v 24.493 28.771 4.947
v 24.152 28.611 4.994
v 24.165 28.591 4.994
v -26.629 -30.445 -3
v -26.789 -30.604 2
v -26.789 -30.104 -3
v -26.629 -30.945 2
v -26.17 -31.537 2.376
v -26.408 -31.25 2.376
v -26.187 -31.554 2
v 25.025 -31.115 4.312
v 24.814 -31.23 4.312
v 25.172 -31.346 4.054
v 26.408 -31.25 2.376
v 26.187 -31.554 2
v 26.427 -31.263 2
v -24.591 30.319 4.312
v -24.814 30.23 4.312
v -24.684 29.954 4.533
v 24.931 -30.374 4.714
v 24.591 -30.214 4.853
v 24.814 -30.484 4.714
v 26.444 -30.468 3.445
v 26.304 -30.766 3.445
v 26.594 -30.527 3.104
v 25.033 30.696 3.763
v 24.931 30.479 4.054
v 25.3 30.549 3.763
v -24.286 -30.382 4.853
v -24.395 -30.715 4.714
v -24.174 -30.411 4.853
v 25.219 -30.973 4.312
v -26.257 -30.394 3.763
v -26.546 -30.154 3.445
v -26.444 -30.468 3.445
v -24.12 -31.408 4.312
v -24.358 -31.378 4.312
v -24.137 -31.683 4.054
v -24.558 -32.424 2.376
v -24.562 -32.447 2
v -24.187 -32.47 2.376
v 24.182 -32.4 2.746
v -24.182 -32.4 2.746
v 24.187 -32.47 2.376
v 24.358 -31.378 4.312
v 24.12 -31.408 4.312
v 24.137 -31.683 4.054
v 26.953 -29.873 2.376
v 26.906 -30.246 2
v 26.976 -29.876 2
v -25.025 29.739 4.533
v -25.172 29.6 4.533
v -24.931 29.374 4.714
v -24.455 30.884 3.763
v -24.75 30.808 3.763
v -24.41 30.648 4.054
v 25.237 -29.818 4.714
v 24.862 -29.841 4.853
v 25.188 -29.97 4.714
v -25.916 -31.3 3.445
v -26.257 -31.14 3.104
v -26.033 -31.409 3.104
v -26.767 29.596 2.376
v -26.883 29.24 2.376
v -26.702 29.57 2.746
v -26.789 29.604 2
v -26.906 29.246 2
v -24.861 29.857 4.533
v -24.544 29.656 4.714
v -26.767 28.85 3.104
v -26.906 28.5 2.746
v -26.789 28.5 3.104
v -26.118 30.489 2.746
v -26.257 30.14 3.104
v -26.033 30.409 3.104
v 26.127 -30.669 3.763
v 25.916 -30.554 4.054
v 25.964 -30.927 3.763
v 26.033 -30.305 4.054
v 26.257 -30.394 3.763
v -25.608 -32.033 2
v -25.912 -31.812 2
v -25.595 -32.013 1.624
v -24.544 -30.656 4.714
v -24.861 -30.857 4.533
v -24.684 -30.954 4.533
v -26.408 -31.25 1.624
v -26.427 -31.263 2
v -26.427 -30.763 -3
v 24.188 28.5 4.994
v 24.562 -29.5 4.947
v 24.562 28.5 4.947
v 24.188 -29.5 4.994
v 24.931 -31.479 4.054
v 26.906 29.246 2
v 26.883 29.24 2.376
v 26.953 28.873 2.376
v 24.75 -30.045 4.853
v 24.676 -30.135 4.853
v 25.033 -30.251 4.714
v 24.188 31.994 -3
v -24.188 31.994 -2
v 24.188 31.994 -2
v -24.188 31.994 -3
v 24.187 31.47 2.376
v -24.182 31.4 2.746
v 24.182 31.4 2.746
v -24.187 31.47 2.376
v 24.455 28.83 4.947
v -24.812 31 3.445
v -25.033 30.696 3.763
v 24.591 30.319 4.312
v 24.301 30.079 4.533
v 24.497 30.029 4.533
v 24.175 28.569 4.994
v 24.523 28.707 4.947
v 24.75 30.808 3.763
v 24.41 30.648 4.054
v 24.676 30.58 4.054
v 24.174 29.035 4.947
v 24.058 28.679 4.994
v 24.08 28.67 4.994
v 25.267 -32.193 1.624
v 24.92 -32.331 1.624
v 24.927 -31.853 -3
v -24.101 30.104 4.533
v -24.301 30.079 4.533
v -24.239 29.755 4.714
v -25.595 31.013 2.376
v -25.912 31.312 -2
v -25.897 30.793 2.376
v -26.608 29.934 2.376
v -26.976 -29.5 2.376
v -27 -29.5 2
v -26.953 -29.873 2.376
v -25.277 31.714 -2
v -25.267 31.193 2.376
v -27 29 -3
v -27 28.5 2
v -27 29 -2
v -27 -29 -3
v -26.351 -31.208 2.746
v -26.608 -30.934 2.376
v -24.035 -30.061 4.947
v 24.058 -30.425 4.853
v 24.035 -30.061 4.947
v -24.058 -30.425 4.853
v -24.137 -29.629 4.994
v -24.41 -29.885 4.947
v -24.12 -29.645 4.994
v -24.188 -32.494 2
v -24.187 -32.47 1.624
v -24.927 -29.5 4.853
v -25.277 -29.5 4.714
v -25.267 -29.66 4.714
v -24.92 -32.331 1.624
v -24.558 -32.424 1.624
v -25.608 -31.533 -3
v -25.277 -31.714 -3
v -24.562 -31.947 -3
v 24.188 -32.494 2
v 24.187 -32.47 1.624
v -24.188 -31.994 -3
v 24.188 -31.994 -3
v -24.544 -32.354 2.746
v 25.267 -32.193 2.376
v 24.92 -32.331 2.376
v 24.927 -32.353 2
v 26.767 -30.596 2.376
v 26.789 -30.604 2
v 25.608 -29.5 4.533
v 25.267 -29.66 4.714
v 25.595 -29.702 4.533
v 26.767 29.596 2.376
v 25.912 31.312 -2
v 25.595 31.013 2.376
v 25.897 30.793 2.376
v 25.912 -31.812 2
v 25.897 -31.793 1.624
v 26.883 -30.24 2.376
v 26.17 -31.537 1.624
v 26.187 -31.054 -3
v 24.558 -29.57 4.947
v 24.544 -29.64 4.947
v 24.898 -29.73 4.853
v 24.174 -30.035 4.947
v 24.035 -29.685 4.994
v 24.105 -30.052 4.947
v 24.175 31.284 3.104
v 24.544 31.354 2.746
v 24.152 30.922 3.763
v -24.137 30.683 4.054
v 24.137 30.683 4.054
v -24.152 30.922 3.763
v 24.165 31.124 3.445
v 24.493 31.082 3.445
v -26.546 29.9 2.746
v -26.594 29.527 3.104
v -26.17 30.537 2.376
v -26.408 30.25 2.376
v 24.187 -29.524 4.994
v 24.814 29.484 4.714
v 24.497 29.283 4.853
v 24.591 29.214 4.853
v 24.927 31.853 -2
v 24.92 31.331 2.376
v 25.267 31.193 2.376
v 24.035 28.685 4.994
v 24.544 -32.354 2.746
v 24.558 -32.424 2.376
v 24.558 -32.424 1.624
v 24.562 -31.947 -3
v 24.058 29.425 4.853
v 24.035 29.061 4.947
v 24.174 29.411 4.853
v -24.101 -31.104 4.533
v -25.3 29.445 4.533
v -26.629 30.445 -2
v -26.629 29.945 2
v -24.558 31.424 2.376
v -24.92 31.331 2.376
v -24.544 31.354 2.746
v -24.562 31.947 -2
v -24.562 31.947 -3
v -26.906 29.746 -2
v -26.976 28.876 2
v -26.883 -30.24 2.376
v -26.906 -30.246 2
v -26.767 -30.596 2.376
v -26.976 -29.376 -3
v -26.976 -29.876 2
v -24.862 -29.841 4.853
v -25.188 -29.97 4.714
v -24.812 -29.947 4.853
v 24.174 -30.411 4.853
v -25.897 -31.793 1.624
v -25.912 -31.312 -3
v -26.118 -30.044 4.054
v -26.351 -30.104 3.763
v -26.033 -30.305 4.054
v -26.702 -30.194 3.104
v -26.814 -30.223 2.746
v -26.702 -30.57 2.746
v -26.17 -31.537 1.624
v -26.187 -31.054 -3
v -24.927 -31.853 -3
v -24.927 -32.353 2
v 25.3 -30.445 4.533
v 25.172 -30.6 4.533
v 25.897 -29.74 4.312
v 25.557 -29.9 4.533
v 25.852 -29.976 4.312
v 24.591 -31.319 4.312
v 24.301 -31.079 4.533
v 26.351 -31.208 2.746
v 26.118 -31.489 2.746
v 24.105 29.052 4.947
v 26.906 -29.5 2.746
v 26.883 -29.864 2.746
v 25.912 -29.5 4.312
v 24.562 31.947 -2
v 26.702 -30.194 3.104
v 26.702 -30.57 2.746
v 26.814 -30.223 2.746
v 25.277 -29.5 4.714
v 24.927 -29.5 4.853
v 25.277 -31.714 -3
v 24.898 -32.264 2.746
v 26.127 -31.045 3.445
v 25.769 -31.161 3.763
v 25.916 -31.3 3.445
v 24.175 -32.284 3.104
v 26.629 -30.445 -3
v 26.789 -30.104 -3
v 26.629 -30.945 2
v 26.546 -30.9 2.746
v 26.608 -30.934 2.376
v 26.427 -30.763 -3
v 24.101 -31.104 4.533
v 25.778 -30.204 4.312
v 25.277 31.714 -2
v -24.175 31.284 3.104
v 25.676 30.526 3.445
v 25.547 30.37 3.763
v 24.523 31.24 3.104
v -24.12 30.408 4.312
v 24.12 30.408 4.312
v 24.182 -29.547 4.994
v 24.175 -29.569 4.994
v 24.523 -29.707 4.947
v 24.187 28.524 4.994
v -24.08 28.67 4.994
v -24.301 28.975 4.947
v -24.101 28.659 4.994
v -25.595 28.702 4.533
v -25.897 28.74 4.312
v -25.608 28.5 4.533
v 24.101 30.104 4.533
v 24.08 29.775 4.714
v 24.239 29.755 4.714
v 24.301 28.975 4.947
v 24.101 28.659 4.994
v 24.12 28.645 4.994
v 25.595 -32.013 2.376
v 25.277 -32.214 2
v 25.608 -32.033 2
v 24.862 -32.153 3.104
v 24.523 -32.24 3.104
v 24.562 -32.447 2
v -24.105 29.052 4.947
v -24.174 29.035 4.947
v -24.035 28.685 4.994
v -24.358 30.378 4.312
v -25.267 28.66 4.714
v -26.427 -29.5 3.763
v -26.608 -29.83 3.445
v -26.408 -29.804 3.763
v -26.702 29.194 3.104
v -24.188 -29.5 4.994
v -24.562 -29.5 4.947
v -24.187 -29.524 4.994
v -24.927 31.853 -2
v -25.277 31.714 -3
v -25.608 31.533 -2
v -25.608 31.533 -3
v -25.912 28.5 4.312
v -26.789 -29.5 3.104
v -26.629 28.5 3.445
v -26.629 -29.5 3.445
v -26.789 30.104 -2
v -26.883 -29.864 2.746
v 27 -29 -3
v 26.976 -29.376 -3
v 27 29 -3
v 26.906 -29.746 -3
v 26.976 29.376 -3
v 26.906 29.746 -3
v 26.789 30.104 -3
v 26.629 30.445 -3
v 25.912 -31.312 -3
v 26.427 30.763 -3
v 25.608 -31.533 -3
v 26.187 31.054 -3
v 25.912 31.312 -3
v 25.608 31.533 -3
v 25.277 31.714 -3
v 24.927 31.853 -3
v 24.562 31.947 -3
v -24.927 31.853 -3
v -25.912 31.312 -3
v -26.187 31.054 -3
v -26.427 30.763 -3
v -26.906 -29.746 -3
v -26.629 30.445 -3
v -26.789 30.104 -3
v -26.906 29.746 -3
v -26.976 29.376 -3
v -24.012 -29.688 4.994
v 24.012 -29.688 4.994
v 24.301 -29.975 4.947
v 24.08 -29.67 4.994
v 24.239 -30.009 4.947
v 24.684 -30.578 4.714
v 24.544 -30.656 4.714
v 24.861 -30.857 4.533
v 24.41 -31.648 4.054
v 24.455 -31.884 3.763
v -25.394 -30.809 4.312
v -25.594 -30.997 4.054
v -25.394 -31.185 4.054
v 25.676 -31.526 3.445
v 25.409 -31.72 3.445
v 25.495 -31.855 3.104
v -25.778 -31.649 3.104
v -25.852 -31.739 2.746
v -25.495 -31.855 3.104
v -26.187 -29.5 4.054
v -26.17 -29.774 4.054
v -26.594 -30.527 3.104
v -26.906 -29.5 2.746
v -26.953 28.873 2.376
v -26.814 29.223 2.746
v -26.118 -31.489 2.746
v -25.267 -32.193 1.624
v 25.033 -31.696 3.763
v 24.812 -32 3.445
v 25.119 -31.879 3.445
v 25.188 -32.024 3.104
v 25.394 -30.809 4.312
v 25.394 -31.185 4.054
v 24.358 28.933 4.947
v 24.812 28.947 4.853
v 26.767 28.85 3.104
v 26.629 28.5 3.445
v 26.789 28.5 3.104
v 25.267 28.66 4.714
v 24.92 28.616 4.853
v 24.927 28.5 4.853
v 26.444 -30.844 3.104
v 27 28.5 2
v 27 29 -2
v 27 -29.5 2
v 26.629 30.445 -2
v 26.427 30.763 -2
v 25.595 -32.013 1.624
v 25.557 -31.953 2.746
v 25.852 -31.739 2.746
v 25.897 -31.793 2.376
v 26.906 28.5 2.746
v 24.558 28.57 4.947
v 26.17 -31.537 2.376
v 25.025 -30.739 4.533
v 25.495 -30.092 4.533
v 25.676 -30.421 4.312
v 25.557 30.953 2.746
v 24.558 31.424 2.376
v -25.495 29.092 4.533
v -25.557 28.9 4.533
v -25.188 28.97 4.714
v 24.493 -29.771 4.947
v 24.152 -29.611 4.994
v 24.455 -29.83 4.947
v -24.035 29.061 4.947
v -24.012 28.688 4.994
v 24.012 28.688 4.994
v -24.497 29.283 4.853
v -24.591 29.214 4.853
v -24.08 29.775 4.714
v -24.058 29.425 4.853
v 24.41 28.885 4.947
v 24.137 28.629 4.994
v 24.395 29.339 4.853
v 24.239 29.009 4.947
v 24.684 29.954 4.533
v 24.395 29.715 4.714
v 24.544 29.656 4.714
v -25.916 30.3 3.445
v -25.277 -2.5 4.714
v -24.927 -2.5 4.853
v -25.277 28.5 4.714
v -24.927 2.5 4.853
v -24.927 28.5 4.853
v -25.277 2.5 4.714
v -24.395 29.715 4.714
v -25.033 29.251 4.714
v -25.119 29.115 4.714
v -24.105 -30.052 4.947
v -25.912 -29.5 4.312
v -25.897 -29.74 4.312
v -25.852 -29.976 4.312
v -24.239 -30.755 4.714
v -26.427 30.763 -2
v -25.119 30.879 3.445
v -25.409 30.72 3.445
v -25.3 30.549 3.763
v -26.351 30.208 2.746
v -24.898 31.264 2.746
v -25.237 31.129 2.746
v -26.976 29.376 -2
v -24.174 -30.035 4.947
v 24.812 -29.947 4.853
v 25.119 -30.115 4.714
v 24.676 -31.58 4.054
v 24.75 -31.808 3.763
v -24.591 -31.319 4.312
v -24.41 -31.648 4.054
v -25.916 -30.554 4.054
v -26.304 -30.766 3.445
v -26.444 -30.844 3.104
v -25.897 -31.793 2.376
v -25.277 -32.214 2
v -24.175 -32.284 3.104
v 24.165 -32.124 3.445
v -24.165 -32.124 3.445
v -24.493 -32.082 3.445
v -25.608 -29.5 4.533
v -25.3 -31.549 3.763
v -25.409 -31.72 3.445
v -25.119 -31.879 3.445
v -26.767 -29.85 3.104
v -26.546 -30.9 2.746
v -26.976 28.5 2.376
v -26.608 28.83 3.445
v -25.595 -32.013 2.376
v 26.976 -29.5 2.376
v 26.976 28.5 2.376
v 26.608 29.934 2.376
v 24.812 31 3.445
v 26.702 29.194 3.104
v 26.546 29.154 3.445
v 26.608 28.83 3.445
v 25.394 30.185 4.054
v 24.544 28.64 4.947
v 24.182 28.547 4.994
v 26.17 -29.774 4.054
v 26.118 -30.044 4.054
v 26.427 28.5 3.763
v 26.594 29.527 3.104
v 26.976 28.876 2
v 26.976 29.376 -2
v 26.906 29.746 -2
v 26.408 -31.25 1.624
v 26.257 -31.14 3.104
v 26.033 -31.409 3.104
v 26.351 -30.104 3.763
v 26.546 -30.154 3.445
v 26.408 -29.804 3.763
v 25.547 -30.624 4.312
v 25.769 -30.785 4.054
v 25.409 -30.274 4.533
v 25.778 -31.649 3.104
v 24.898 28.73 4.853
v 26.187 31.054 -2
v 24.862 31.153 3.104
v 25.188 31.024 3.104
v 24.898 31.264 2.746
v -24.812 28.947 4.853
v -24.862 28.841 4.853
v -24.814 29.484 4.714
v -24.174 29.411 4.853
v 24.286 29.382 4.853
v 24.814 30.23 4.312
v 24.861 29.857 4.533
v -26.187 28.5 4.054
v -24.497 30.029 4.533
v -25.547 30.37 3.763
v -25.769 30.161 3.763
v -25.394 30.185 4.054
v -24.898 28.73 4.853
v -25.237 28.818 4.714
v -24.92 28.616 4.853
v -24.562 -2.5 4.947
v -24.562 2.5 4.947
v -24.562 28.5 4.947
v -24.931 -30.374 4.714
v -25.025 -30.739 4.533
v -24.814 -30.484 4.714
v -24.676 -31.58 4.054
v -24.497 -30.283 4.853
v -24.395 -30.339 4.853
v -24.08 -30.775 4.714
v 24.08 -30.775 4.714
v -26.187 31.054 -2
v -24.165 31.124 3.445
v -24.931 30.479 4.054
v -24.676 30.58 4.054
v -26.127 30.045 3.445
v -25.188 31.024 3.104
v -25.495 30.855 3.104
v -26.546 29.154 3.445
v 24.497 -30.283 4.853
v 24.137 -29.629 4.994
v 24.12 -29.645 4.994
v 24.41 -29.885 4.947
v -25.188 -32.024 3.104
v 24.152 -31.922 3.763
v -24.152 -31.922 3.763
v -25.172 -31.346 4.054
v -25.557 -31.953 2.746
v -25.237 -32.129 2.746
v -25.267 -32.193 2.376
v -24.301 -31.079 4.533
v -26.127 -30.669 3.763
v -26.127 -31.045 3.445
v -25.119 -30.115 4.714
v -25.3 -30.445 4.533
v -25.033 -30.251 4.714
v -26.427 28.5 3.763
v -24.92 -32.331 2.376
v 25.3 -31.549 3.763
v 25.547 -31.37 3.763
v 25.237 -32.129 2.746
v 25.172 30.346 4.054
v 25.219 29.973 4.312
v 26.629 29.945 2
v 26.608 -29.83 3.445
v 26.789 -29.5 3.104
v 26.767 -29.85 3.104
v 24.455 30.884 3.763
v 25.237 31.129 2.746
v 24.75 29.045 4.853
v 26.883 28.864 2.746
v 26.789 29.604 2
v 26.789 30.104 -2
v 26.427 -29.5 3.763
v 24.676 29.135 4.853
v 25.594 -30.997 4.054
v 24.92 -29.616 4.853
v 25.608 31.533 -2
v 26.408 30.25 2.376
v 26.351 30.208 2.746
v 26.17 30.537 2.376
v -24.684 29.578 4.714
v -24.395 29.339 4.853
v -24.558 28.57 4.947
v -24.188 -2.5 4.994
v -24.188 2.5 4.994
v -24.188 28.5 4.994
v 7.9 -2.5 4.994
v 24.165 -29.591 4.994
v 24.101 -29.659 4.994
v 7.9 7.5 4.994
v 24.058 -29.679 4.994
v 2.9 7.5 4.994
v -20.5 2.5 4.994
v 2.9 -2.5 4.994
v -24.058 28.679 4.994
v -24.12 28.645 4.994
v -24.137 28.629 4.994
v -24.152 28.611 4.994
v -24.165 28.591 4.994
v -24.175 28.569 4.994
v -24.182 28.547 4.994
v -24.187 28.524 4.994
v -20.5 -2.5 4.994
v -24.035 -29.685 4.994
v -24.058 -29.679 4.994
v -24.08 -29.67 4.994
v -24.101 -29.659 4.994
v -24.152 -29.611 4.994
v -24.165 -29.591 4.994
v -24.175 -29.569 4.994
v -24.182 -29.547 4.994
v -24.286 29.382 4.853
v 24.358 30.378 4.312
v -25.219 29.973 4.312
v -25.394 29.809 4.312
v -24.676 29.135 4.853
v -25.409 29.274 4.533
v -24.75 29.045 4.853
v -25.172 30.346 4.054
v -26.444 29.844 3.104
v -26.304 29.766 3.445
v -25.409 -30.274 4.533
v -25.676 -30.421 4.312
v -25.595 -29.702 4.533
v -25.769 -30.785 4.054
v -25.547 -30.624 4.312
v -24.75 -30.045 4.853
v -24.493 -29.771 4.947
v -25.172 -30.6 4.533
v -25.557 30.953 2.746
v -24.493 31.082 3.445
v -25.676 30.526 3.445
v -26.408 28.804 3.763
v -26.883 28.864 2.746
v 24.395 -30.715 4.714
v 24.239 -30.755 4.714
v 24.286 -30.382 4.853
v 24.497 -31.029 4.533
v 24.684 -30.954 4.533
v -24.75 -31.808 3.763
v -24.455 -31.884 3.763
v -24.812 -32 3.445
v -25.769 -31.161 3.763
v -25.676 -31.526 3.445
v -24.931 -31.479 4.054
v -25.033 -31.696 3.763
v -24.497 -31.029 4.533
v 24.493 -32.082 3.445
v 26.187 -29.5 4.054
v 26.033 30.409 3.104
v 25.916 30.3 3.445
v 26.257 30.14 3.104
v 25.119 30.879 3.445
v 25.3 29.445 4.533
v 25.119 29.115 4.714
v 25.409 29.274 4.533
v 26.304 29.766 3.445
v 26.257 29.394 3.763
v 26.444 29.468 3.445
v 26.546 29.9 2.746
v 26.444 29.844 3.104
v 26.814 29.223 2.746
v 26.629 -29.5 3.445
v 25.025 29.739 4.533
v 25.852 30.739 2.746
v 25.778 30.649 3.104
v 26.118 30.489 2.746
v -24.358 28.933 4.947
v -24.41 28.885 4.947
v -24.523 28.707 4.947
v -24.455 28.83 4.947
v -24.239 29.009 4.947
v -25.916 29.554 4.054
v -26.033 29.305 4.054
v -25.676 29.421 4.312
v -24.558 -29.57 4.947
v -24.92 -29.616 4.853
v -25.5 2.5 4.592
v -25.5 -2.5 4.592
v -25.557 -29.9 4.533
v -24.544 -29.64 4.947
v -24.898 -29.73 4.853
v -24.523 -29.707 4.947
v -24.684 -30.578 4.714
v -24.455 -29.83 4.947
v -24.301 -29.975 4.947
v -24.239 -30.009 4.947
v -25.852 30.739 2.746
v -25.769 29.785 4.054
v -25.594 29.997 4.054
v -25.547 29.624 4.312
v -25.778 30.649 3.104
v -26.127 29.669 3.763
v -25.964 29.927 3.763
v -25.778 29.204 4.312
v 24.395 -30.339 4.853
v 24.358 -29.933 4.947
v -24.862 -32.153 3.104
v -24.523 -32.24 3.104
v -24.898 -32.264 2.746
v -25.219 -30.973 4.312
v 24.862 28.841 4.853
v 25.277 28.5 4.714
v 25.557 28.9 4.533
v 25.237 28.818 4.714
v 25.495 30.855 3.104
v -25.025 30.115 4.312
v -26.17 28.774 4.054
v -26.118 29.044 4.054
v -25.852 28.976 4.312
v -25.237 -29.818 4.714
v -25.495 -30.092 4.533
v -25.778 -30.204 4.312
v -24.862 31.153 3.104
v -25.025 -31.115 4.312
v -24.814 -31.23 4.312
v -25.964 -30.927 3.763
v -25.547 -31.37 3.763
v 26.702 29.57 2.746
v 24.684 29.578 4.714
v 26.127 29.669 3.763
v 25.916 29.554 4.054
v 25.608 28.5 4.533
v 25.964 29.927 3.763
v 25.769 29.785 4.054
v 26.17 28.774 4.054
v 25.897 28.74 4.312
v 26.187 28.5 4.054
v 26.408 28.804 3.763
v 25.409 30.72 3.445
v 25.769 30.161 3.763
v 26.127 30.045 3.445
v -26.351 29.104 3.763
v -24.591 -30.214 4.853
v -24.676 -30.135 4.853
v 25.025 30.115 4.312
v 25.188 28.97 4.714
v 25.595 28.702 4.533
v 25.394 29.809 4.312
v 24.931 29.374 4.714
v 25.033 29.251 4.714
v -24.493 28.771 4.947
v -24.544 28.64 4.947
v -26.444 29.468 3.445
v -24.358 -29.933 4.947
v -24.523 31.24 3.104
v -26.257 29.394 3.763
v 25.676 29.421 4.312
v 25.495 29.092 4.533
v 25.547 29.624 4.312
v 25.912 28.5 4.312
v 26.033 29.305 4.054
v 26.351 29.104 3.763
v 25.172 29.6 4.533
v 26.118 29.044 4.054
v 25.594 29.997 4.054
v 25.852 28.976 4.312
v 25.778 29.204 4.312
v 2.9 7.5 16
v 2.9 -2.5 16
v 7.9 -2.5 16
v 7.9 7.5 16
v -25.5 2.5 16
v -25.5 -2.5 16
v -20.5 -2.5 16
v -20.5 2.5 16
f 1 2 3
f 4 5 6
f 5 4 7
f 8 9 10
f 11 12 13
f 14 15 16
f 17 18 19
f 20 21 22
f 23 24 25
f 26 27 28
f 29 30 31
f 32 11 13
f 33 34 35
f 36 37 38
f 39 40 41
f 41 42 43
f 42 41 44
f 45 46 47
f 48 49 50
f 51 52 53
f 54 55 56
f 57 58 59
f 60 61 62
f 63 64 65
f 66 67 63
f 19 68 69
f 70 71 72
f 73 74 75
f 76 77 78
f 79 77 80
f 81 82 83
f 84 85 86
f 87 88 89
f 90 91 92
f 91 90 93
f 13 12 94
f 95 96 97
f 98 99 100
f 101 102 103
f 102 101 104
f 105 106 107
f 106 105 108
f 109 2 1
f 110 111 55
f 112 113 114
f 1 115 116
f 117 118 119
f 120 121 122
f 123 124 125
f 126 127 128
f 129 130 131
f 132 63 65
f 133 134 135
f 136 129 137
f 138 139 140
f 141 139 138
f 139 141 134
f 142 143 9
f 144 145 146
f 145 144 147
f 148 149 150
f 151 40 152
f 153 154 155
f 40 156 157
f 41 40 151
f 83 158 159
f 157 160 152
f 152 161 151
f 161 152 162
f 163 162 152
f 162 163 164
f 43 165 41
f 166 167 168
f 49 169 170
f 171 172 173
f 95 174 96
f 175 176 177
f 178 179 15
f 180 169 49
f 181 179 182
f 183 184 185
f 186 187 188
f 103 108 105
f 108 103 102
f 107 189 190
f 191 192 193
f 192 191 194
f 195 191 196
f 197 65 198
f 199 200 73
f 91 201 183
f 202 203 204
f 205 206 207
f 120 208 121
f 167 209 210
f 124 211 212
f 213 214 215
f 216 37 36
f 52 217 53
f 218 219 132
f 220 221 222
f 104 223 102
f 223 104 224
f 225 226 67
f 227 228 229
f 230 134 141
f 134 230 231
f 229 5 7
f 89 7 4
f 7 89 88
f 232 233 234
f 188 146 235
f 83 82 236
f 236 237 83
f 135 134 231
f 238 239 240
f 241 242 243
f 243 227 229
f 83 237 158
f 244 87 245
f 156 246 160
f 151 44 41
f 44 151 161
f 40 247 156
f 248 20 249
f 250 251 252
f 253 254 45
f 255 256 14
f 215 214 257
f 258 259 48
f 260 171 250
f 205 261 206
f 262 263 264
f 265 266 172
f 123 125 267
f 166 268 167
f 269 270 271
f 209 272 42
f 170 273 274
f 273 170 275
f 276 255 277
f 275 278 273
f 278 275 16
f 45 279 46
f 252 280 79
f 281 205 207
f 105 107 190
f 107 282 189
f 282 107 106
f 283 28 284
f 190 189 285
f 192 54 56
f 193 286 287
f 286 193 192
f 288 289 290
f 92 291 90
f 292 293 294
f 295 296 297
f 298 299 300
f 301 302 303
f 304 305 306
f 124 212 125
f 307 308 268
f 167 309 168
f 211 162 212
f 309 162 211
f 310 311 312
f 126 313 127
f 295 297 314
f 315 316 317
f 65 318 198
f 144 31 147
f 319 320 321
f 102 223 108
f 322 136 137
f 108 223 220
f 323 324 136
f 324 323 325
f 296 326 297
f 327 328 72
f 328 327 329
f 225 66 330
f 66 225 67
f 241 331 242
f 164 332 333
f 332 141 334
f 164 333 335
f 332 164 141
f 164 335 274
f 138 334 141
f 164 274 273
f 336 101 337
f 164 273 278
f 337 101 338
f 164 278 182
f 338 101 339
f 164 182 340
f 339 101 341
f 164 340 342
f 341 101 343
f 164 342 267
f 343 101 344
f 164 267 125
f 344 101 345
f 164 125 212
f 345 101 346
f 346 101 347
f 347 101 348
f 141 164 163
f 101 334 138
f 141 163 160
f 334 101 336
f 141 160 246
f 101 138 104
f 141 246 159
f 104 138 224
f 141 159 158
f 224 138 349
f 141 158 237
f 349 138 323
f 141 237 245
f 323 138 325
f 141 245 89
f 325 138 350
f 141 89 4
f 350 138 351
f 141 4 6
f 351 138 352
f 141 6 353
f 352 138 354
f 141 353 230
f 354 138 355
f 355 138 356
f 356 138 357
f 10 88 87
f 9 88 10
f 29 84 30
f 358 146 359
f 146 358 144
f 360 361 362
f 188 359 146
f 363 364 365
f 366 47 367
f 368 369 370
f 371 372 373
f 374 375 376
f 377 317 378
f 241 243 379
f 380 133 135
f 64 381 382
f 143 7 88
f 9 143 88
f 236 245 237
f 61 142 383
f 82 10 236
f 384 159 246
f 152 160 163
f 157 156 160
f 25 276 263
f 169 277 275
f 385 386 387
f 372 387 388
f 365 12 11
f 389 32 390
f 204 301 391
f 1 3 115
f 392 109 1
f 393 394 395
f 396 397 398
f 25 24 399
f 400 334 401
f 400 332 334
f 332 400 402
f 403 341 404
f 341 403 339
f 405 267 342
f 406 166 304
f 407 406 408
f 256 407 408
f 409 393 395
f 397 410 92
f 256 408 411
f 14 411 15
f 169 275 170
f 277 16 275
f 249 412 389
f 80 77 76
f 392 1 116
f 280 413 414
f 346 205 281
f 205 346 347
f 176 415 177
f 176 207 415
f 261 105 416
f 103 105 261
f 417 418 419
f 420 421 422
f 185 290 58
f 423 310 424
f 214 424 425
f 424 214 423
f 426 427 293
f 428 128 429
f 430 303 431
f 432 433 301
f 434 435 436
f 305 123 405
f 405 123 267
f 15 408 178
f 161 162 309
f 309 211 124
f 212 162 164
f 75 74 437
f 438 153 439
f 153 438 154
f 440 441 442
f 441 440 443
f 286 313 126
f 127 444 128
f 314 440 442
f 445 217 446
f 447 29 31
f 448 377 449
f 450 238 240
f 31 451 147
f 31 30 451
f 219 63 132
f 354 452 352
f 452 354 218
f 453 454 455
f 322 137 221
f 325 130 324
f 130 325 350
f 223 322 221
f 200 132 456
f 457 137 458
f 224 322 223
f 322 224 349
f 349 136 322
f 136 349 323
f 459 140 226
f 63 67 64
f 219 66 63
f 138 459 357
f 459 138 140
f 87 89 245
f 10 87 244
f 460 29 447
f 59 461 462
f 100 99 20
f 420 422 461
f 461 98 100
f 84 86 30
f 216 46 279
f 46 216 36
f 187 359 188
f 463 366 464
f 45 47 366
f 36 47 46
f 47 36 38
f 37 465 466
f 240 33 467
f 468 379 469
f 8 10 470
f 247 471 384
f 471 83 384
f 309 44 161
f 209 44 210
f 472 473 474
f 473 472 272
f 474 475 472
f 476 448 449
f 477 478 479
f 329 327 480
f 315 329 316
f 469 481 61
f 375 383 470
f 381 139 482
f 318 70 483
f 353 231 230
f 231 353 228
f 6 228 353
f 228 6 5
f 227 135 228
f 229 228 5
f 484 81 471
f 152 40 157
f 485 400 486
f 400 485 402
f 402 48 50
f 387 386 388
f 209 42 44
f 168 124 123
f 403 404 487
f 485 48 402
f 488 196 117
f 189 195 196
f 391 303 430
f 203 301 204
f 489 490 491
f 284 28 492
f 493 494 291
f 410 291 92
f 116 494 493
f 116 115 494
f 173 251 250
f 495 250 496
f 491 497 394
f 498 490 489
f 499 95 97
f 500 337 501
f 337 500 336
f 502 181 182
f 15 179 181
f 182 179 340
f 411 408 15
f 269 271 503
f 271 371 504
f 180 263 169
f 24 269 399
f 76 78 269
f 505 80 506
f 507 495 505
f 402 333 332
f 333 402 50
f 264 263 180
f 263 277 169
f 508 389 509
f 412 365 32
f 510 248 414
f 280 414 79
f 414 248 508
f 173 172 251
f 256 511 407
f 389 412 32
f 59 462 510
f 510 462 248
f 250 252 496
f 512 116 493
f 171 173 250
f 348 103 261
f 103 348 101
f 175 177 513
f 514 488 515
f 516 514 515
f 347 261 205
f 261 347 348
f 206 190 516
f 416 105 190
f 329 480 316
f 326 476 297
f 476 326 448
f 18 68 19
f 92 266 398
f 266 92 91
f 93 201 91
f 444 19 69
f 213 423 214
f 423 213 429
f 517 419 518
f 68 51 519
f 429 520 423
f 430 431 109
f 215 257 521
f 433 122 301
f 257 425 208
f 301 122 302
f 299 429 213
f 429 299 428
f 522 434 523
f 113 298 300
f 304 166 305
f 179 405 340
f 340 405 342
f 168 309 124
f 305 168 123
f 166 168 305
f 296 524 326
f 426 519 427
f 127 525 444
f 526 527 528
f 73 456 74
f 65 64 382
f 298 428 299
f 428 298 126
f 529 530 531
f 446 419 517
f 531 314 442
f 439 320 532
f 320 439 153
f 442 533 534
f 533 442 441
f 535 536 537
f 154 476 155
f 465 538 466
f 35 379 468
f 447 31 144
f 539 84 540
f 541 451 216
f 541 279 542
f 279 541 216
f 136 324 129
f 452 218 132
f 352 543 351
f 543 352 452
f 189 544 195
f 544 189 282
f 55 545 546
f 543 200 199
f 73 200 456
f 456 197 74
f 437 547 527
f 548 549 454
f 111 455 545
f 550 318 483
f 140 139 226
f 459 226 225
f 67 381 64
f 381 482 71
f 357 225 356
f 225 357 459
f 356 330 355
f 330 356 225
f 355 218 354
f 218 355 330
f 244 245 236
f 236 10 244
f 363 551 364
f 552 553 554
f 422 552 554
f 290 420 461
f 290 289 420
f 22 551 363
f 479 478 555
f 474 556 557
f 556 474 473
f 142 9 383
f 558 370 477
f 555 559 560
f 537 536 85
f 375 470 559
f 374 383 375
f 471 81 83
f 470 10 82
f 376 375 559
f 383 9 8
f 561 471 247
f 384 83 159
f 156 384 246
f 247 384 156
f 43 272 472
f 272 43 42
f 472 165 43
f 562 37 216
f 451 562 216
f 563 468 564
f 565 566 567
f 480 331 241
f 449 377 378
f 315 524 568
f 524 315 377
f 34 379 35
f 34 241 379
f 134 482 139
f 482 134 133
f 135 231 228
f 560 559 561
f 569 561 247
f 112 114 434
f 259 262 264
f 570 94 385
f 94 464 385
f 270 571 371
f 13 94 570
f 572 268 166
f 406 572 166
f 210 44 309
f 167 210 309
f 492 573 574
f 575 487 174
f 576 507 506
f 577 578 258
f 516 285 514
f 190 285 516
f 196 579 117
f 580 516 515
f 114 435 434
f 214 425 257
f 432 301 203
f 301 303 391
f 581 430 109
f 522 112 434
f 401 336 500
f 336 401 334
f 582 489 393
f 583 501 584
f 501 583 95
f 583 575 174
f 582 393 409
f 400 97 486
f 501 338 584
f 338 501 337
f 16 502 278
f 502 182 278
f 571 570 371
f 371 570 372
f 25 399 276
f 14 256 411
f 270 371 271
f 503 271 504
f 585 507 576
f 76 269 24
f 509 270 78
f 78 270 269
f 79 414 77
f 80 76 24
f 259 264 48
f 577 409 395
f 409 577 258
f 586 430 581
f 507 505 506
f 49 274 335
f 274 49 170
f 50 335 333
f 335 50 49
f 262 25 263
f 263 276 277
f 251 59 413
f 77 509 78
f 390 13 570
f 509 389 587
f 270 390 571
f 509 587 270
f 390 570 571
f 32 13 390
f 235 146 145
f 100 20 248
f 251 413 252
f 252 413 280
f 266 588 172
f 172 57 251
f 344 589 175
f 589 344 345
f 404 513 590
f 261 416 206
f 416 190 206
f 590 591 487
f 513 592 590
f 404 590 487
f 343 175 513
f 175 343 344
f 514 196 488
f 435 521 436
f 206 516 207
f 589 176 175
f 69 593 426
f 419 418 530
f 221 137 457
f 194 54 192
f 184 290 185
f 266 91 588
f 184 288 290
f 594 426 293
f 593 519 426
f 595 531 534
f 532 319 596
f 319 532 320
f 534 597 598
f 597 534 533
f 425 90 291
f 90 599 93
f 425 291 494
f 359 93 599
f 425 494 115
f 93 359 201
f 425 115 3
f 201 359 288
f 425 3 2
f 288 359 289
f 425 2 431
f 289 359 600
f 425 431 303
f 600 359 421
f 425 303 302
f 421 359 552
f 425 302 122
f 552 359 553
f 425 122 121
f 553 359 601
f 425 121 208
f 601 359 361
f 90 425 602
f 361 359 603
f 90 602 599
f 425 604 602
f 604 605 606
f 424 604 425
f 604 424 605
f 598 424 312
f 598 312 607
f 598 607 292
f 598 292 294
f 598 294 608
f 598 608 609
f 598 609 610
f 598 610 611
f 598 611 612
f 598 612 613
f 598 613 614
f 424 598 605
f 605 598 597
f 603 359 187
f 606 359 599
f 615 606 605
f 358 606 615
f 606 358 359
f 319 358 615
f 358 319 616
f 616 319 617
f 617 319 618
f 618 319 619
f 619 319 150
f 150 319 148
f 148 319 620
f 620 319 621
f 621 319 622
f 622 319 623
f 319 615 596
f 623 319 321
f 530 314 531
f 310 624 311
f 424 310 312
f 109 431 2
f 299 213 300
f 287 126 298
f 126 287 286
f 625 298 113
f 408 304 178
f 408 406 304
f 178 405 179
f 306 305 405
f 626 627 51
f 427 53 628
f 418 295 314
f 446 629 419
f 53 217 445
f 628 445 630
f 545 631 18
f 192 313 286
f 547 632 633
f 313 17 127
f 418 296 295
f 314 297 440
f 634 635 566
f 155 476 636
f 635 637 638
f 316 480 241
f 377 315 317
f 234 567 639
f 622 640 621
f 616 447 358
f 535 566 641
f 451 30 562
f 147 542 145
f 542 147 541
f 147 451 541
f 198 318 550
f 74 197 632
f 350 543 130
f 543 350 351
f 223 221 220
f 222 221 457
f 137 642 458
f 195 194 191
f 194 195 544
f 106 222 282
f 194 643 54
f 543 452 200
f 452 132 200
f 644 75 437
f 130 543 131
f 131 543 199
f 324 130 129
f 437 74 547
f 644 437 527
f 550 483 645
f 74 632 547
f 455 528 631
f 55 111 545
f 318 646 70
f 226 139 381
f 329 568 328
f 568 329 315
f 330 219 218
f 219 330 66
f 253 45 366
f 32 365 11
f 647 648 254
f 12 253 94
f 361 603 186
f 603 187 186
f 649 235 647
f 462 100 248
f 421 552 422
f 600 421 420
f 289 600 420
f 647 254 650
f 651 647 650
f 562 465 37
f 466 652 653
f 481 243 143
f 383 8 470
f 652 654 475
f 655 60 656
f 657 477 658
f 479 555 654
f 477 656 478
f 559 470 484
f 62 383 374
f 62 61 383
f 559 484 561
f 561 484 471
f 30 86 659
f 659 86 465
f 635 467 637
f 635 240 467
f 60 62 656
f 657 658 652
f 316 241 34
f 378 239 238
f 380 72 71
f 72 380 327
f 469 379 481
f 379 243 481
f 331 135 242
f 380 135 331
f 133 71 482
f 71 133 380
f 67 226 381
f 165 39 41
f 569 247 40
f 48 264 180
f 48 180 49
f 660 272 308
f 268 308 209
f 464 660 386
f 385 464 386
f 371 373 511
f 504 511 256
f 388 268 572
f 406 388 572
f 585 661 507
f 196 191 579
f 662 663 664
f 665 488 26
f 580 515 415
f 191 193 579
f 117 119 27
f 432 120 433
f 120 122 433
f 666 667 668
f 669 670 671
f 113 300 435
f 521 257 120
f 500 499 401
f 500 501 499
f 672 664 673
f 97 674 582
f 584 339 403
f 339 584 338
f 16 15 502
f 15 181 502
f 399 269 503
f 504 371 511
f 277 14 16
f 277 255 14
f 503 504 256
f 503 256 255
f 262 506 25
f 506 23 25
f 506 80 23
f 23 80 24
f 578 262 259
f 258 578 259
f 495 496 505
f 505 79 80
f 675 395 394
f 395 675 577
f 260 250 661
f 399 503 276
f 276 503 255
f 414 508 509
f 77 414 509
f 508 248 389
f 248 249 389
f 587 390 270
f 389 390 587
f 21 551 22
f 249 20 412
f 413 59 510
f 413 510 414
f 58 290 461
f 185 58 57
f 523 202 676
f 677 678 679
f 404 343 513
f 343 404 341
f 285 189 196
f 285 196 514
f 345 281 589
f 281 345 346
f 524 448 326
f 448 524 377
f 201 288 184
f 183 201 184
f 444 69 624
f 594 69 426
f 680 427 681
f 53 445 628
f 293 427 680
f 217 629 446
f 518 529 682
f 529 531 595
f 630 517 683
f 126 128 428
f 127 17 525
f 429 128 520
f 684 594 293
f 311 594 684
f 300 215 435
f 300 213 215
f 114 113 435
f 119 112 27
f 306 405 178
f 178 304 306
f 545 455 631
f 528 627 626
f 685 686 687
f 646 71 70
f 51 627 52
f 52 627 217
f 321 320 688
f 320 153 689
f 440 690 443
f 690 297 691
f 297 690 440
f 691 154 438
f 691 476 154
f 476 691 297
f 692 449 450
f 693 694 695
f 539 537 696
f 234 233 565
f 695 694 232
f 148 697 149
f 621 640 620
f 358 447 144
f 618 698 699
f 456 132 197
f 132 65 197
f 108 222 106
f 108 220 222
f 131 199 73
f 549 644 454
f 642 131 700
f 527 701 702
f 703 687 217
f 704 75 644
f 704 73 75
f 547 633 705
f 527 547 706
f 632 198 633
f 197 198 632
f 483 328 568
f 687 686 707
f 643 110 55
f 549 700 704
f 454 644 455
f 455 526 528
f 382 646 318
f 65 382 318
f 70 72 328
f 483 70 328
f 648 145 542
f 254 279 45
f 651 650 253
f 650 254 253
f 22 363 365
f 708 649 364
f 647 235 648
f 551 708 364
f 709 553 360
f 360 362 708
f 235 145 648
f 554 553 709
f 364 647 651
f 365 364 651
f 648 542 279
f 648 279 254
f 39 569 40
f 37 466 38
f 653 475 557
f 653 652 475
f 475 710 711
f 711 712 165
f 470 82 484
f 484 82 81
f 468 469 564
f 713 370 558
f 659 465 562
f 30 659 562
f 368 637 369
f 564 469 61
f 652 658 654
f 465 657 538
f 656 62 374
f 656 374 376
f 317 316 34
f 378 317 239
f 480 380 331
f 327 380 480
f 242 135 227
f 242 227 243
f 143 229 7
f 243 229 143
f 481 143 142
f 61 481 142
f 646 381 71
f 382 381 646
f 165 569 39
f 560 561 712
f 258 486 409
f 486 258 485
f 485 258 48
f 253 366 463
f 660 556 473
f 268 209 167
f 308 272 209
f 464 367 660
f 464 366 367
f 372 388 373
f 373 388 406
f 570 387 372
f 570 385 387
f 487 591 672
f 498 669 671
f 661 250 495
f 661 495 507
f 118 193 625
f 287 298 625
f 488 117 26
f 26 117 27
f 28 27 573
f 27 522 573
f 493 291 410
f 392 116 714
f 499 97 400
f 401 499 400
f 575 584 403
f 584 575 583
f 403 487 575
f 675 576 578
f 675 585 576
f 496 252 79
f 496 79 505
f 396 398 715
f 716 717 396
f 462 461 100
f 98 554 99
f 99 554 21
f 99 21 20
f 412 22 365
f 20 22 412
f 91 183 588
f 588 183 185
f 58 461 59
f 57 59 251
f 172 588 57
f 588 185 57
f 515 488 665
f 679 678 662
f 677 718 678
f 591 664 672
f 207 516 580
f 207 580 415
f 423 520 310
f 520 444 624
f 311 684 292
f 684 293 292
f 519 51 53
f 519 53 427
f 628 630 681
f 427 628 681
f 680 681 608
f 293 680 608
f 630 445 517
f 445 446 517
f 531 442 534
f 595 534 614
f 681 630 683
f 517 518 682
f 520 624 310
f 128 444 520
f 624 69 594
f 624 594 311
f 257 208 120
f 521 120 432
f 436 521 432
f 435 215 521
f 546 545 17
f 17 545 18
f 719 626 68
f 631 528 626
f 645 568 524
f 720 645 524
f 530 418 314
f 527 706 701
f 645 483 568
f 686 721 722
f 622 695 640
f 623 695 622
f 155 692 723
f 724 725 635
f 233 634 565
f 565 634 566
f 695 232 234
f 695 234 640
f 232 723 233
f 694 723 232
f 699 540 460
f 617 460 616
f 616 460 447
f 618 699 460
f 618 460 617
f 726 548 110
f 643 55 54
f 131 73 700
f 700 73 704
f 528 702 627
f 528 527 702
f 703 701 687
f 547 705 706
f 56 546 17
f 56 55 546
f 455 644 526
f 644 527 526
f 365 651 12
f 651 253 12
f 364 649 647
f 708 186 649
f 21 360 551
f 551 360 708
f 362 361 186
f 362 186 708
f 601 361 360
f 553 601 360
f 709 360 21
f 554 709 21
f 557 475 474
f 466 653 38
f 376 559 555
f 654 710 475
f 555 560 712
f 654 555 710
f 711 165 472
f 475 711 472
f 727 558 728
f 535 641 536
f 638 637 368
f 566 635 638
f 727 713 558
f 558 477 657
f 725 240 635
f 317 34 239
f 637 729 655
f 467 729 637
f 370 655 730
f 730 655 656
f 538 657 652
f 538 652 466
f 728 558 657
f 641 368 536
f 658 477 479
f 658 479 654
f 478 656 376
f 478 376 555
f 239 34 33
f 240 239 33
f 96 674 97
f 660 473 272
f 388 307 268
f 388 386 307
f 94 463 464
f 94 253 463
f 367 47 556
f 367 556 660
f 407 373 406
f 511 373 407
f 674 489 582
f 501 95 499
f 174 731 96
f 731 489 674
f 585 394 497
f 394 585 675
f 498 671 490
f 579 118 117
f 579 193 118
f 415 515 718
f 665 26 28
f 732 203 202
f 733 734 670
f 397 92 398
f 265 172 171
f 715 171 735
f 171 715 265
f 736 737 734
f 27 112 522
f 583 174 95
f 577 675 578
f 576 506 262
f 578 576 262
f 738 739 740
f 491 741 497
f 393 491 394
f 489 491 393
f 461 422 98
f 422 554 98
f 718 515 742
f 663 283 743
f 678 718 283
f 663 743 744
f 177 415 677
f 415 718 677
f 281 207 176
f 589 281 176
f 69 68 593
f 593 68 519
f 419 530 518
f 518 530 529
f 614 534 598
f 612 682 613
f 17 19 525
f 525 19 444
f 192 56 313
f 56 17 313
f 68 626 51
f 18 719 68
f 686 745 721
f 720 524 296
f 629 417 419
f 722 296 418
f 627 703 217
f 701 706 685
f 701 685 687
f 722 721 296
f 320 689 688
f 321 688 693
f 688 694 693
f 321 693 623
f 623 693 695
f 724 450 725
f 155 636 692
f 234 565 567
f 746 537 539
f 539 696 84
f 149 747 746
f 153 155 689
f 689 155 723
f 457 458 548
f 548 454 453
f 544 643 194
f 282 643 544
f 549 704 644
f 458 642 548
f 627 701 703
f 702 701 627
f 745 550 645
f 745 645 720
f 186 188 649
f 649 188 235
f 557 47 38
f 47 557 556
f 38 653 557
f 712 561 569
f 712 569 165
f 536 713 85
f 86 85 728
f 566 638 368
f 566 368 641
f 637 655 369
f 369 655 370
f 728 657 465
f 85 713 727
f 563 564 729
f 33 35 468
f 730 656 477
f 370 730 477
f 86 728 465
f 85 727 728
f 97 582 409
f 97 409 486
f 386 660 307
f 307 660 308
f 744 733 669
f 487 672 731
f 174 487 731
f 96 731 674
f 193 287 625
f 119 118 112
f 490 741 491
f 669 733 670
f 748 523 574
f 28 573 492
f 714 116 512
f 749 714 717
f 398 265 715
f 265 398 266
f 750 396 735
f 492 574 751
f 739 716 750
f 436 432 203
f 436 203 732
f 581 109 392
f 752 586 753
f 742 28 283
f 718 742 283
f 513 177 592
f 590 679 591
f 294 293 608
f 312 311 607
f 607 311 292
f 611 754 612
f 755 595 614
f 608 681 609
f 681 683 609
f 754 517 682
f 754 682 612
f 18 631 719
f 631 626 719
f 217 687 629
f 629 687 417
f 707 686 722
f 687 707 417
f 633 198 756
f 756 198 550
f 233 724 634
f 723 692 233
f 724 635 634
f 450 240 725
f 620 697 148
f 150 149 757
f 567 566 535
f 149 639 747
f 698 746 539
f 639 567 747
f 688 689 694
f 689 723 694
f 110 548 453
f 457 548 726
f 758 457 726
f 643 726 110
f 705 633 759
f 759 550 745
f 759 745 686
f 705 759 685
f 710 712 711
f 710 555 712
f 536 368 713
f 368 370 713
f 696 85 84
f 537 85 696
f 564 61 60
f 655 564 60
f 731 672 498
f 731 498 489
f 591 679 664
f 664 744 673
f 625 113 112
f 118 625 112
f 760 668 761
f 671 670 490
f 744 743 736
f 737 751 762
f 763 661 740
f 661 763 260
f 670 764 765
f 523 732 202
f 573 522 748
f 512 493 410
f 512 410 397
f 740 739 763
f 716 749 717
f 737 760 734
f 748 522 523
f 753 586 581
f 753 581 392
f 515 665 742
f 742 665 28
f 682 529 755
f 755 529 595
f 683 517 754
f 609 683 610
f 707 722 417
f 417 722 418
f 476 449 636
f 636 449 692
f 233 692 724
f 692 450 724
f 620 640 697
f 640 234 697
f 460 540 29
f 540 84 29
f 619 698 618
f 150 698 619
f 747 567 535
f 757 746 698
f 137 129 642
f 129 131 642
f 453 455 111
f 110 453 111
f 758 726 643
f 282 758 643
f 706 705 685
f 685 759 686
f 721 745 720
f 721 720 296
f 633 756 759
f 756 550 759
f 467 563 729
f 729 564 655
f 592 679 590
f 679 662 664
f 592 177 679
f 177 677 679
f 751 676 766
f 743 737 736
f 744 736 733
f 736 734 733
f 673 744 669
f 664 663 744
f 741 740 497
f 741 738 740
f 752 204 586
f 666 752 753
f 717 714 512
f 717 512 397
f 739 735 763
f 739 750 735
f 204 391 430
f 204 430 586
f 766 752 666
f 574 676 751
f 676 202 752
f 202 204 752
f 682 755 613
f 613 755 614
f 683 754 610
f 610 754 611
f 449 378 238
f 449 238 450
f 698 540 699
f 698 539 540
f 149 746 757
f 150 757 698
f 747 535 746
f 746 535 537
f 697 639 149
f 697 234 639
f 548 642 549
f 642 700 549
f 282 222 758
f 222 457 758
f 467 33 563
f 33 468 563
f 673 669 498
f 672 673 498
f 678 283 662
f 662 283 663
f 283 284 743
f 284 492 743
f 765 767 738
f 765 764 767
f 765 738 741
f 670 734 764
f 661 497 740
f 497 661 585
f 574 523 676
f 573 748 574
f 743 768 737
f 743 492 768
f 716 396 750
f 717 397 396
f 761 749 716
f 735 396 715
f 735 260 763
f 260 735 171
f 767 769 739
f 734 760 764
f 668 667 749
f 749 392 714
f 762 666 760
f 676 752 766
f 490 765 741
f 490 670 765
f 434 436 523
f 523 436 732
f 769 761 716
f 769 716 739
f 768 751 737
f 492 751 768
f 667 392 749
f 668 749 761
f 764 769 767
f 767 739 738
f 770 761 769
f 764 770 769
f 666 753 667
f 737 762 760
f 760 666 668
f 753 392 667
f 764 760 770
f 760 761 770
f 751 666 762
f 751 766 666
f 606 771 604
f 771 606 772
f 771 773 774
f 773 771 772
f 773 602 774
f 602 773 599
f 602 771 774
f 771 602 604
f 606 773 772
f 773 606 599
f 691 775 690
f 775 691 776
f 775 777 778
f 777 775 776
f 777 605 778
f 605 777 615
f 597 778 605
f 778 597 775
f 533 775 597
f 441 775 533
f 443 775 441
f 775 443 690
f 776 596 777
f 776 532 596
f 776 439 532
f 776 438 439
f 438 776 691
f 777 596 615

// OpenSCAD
hull(){
for(i = [24,-24],j=[29,-29]){
translate([i,j,-3])
union(){
cylinder(h=1,r=3,$fn=50);
     translate([0,-0.5,5])
    sphere(r=3,$fn=50);
}
}
}
translate([2.9,-2.5,1])
cube([5,10,15]);
translate([-25.5,-2.5,0])
cube([5,5,16]);
